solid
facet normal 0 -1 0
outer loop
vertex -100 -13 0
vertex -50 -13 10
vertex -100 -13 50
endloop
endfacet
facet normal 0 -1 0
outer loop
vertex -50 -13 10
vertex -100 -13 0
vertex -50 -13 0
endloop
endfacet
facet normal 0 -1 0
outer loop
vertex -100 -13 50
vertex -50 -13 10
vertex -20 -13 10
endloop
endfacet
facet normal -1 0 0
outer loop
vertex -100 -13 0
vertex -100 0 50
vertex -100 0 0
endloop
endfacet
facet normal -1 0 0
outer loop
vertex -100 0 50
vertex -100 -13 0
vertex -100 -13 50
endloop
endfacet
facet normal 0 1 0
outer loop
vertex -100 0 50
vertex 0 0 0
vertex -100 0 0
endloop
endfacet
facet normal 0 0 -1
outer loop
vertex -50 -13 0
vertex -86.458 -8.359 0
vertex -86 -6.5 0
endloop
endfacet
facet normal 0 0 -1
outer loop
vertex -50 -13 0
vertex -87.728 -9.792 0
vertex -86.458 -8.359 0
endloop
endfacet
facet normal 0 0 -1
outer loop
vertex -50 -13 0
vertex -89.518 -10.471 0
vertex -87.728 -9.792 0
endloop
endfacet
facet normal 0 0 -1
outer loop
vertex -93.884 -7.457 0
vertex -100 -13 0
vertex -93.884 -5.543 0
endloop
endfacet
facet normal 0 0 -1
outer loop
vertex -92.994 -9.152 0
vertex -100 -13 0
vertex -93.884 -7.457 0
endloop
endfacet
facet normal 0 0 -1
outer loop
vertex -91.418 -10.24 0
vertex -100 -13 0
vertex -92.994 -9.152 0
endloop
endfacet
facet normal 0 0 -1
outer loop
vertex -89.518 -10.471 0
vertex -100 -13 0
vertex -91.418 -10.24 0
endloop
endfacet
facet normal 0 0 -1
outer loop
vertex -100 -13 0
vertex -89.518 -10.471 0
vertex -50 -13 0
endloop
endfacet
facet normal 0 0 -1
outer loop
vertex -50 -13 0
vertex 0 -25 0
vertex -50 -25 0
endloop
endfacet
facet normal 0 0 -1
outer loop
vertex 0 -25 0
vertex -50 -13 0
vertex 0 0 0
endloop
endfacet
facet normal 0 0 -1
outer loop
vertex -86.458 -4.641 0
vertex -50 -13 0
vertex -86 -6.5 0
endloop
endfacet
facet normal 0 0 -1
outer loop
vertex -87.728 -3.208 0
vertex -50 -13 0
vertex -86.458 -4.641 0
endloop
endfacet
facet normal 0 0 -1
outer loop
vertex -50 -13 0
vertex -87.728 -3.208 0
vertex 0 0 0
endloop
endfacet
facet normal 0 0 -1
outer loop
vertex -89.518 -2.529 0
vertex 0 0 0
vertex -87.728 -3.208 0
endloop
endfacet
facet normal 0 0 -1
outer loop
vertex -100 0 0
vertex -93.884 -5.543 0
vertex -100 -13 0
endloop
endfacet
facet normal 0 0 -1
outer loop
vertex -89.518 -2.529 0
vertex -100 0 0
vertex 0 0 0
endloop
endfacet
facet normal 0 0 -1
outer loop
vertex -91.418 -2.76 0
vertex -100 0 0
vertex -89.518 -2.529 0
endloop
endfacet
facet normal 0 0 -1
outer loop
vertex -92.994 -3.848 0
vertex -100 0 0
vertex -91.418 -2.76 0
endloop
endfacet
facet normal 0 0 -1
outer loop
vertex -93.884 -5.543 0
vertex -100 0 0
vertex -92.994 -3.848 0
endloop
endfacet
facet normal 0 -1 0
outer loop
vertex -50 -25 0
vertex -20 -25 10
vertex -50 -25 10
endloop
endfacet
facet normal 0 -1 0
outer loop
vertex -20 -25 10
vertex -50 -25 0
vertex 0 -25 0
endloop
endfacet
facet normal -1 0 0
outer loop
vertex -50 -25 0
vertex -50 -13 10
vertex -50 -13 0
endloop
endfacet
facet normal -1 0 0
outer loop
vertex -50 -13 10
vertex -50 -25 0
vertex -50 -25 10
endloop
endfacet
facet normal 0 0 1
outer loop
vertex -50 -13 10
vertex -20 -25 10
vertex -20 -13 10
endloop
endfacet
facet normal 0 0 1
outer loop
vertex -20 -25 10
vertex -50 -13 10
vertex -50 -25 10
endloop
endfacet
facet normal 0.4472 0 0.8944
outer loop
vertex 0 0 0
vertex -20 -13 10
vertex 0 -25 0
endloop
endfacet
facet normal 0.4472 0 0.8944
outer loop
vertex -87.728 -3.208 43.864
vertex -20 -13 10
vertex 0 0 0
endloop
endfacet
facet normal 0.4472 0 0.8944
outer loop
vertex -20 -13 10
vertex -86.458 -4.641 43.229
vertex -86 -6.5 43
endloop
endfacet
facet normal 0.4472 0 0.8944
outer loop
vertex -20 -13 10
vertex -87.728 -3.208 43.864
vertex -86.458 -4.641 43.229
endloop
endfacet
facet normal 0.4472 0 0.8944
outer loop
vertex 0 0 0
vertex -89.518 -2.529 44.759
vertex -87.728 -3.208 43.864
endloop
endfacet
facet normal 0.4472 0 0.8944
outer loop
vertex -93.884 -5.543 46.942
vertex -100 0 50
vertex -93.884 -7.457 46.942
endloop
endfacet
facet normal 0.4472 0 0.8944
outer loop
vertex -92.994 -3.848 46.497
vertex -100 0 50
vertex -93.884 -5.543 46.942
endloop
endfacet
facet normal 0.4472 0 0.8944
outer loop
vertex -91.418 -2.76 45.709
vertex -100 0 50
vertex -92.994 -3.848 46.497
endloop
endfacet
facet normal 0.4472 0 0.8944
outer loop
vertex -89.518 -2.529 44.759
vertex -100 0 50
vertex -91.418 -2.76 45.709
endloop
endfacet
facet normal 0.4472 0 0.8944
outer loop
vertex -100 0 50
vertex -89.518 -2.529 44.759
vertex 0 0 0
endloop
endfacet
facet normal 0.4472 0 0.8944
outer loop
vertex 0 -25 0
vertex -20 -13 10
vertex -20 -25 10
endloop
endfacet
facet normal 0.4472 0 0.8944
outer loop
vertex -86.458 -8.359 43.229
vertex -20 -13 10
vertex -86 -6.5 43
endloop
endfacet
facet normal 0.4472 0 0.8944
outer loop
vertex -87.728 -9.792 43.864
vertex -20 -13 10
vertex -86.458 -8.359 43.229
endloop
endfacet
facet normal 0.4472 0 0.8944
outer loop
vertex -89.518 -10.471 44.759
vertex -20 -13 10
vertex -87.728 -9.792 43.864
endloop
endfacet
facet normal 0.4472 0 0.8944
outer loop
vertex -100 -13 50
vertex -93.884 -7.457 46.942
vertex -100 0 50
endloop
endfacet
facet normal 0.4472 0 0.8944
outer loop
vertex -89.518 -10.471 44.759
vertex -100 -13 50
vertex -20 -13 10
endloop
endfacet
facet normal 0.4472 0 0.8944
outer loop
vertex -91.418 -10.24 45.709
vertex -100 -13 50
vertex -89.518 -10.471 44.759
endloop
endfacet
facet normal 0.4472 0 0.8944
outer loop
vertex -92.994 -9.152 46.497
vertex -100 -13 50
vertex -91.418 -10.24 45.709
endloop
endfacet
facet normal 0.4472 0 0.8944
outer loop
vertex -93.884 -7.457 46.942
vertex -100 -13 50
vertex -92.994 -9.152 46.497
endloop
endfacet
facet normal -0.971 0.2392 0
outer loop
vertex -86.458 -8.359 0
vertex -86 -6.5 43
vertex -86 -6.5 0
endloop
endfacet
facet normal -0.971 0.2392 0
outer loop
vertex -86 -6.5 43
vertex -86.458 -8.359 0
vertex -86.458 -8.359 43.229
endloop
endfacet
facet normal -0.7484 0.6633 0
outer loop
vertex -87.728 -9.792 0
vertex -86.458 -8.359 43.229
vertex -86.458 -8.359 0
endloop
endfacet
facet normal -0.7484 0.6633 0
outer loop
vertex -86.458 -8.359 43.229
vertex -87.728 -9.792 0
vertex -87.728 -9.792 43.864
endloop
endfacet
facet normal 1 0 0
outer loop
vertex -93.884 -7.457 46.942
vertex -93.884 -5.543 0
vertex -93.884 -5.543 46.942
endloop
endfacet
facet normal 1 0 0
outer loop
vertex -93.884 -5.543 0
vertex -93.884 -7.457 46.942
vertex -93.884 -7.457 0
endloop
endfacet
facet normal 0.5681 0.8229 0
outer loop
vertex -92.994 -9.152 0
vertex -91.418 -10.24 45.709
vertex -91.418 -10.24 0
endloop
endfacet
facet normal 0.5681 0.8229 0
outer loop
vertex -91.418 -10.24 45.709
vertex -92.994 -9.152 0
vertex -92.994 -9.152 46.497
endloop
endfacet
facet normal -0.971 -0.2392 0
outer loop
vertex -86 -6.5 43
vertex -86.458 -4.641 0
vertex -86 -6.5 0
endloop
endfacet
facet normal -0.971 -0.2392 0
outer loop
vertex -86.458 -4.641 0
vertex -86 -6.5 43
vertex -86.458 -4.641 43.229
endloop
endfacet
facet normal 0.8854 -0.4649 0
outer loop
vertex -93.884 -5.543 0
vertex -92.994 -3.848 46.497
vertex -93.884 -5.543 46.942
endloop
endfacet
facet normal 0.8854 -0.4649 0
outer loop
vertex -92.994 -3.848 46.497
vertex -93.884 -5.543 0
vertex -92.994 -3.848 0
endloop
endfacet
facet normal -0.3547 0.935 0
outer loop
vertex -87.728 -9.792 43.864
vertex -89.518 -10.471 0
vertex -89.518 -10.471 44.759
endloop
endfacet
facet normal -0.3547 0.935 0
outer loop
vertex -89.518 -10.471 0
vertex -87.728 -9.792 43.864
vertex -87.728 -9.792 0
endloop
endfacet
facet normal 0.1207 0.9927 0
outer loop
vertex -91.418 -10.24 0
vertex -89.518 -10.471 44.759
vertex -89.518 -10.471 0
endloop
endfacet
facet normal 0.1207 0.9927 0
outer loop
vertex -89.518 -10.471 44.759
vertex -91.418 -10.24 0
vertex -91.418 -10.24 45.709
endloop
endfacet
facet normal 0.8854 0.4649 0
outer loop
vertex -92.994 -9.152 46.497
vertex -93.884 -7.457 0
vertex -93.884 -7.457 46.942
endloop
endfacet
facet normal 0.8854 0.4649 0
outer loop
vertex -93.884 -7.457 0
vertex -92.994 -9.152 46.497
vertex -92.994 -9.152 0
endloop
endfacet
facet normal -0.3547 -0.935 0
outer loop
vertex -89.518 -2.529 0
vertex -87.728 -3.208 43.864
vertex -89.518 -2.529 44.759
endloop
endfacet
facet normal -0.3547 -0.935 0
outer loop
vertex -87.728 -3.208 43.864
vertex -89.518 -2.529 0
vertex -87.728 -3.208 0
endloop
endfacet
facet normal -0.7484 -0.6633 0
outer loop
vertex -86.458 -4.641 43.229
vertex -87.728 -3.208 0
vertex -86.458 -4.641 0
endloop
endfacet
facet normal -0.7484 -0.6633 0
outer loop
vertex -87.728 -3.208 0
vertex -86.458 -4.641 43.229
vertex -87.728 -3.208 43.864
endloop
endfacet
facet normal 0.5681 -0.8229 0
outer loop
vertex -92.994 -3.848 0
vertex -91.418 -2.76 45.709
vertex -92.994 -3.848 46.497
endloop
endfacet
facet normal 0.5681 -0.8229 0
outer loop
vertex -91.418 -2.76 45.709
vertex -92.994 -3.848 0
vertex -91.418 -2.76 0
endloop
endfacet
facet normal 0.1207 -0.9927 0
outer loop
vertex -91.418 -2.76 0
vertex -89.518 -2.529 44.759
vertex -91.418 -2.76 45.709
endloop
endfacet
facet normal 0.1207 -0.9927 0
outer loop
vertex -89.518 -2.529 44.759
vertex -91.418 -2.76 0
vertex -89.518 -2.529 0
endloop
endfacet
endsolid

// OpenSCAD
// file: globals.scad
/*
Most things in this file is represented as one millimeter, so keep that in mind while changing things.
Some of the setting are not mm but at variables that you can set, such as 2*x=2x and you are setting what x is.
I will try to specify when things are variables and not exact measurements.
*/

obj_leg = 30;
leg_length = 5.5;
small_number = 0.001;
metal_core_rode_global = 5;


///////////////// number of holes /////////////////////
z_hole_number = 8;
other_holes = 8;

///////////////// Pins /////////////////////

//pins that poke out
ball_size = 10;
pin_height = 20;
pin_diameter = 6;


//holes
hole_ball_size = ball_size;
hole_pin_height = pin_height;
hole_pin_diameter = pin_diameter;

///////////////// Z THINGS /////////////////////

berring_slot_width = 7.5;
berring_slot_depth = 6.5;
metal_core_rode = 5;

///////////////// X THINGS /////////////////////

//male dove tails
max_width=10;
min_width=5;
depth=5;
height=obj_leg/2;

//female dove tails, this is found on the y mounts
girl_max_width=11;
girl_min_width=5;
girl_depth=5;
girl_height=obj_leg;


///////////////// Y THINGS /////////////////////
/*
The Y is so normal that all of those global variables at the top should change all of the setting in it, this section is set her incase there are variables set in the future development of this project.
*/
// file: include.scad
//////////////////      END SECTION       //////////////////

	module added_pins(){
		difference(){
			union(){
				translate([30/(15/4),obj_leg*leg_length,30/(15/4)]) pin();
				translate([30/(15/4)+14.5,obj_leg*leg_length,30/(15/4)+14]) pin();
			}
			union(){
							translate([30/(15/4)+13.5,obj_leg*leg_length-20,30/(15/4)+5])cube(size=[2,40,15]);
							translate([30/(15/4)+7.5,obj_leg*leg_length-20,30/(15/4)+15])rotate([0,90,0]) cube(size=[2,40,15]);	

							translate([30/(15/4)-1,obj_leg*leg_length-20,30/(15/4)-8])cube(size=[2,40,15]);
							translate([30/(15/4)-10,obj_leg*leg_length-20,30/(15/4)+1])rotate([0,90,0]) cube(size=[2,40,15]);
			}
		}
	}
	module taken_pins() {
		translate([30/(15/4)+14,obj_leg*leg_length-10,30/(15/4)]) mirror_pin();
		translate([30/(15/4),obj_leg*leg_length-10,30/(15/4)+15]) mirror_pin();
	}


//////////////////      OTHER STUFF       //////////////////

	module holes() {
		rotate([0,0,90]) for(y=[0:other_holes])
		translate([obj_leg+y*15,-15.5,7.5]) union() {
			translate([7.5,0,15]) hole_up();
			hole_down();
		}
	}
	module extend_holes() {
	module top(){
		rotate([0,0,90]) for(y=[0:other_holes+1])
		translate([(30/4)+y*15,-15.5,7.5]) union() {
			translate([7.5,0,15]) hole_up();
		}
	}
	module bottom(){
		rotate([0,0,90]) for(y=[0:other_holes+2])
		translate([(30/4)+y*15,-15.5,7.5]) union() {
			hole_down();
		
}
	}
	union(){
		top();
		bottom();
	}
	}

	module hole() {
		union() {
			rotate([90, 90, 0]) cylinder(h=40, d=hole_pin_diameter, center=true);
			translate([0,7.5,0]) sphere(d=hole_ball_size);
			translate([0,-6,0]) sphere(d=hole_ball_size);
		}
	}
	module hole_up() {
		union() {
			rotate([90, 90, 0]) cylinder(h=40, d=hole_pin_diameter, center=true);
			translate([0,7.5,10]) cylinder(h=hole_pin_height, d=hole_pin_diameter, center=true);
			translate([0,-6,10]) cylinder(h=hole_pin_height, d=hole_pin_diameter, center=true);
			translate([0,7.5,0]) sphere(d=hole_ball_size);
			translate([0,-6,0]) sphere(d=hole_ball_size);
		}
	}
	module hole_down() {
		union() {
			rotate([90, 90, 0]) cylinder(h=40, d=hole_pin_diameter, center=true);
			translate([0,7.5,-10]) cylinder(h=hole_pin_height, d=hole_pin_diameter, center=true);
			translate([0,-6,-10]) cylinder(h=hole_pin_height, d=hole_pin_diameter, center=true);
			translate([0,7.5,0]) sphere(d=hole_ball_size);
			translate([0,-6,0]) sphere(d=hole_ball_size);
		}
	}
	module pin() {
		union() {
			rotate([90, 90, 0]) cylinder(h=pin_height, d=pin_diameter, center=true);
			translate([0,7.5,0]) sphere(d=ball_size);
		}
	}

	module mirror_pin() {
		rotate([90, 90, 0]) cylinder(h=hole_pin_height+small_number, d=hole_pin_diameter, center=true);
		translate([0,-(pin_height-(ball_size/2)),0]) sphere(d=ball_size);
	}


//////////////////      SOME RACK AND Z THINGS       //////////////////

module z_holes() {
    rotate([0,-90,0]) for(z=[0:z_hole_number])
    translate([22.5+z*15,16,-12])
        hole();
}

module pin_cuts() {
	union(){
		cube(size=[2,10,40], center=true);
		rotate([0,0,90]) cube(size=[2,10,40], center=true);
	}
}
module pin_uncut() {
	union(){
		rotate([0, 0, 90]) cylinder(h=hole_pin_height, d=hole_pin_diameter, center=true);
		translate([0,0,10]) sphere(d=ball_hole);
	}
}


module pin_out() {
	union(){
		rotate([0, 0, 90]) cylinder(h=pin_height, d=pin_diameter, center=true);
		translate([0,0,10]) sphere(d= ball_size);
	}
}


module pins_z(){
	difference() {
		pin_out();
		pin_cuts();
	}
}
//////////////////      RACK AND SLIDE     ///////////////////

module straight_pins() {
	for(z=[0:((((obj_leg*leg_length)*2)-(obj_leg*2))/3)/14.5]) rotate([-90,0,0]) translate([z*15,30/(15/4),14]) pins_z();
	for(z=[0:((((obj_leg*leg_length)*2)-(obj_leg*2))/3)/14.5]) rotate([-90,0,0]) translate([z*15,30/(15/4)-14,14]) pins_z();
}
module stagger_pins() {
	for(z=[0:((((obj_leg*leg_length)*2)-(obj_leg*2))/3)/14.5]) rotate([-90,0,0]) translate([z*15,30/(15/4),14]) pins_z();
	for(z=[0:((((obj_leg*leg_length)*2)-(obj_leg*2))/3)/14.5]) rotate([-90,0,0]) translate([z*15+7,30/(15/4)-14,14]) pins_z();
}


//////////////////      DOVE TAIL       //////////////////

module male_dovetail(height) {
	dovetail_3d(max_width,min_width,depth,height);
}

module dovetail_3d(max_width=11, min_width=5, depth=5, height=30) {
	linear_extrude(height=height, convexity=2)
		dovetail_2d(max_width,min_width,depth);
}

module dovetail_2d(max_width=11, min_width=5, depth=5) {
	angle=atan((max_width/2-min_width/2)/depth);
	echo("angle: ", angle);
	polygon(paths=[[0,1,2,3,0]], points=[[-min_width/2,0], [-max_width/2,depth], [max_width/2, depth], [min_width/2,0]]);
}

//bow tie
	module tie_end(height){
				rotate([0,0,0]) translate([0,-0.01,((obj_leg/2)/2)]) male_dovetail(height);
				rotate([0,90,0]) translate([0,-0.01,((obj_leg/2)/2)]) male_dovetail(height);
				rotate([0,180,0]) translate([0,-0.01,((obj_leg/2)/2)]) male_dovetail(height);
				rotate([0,-90,0]) translate([0,-0.01,((obj_leg/2)/2)]) male_dovetail(height);
	}

module bow_support(){
	difference(){
		intersection(){
			translate([-15,0,-15]) cube([30,9,30]);
			scale([1.05,1.05,1.05]) rotate([0,45,0]) tie_end();
		}
		cube([29.2,29.2,29.2], center=true);
	}
}

	module wrap(){
		depth = 30;
				translate([-15,30,15]) rotate([90,180,90]) male_dovetail(height=depth);
				rotate([0,90,0]) translate([-15,30,15]) rotate([90,180,90]) male_dovetail(height=depth);
				rotate([0,180,0]) translate([-15,30,15]) rotate([90,180,90]) male_dovetail(height=depth);
				rotate([0,-90,0]) translate([-15,30,15]) rotate([90,180,90]) male_dovetail(height=depth);
	}
// main file
include <include.scad>;
include <globals.scad>;


module body(){
scale([-1,.5,1]) difference(){
	union(){
	cube([100,100,13]);
	cube([50,20,25]);
	}
	rotate([0,0,45]) cube([200,200,200]);

}
}
rotate([90,0,0])difference(){
	body();
	translate([-90,50,13/2]) rotate([90,0,0]) cylinder(d=8, h=100);
}
